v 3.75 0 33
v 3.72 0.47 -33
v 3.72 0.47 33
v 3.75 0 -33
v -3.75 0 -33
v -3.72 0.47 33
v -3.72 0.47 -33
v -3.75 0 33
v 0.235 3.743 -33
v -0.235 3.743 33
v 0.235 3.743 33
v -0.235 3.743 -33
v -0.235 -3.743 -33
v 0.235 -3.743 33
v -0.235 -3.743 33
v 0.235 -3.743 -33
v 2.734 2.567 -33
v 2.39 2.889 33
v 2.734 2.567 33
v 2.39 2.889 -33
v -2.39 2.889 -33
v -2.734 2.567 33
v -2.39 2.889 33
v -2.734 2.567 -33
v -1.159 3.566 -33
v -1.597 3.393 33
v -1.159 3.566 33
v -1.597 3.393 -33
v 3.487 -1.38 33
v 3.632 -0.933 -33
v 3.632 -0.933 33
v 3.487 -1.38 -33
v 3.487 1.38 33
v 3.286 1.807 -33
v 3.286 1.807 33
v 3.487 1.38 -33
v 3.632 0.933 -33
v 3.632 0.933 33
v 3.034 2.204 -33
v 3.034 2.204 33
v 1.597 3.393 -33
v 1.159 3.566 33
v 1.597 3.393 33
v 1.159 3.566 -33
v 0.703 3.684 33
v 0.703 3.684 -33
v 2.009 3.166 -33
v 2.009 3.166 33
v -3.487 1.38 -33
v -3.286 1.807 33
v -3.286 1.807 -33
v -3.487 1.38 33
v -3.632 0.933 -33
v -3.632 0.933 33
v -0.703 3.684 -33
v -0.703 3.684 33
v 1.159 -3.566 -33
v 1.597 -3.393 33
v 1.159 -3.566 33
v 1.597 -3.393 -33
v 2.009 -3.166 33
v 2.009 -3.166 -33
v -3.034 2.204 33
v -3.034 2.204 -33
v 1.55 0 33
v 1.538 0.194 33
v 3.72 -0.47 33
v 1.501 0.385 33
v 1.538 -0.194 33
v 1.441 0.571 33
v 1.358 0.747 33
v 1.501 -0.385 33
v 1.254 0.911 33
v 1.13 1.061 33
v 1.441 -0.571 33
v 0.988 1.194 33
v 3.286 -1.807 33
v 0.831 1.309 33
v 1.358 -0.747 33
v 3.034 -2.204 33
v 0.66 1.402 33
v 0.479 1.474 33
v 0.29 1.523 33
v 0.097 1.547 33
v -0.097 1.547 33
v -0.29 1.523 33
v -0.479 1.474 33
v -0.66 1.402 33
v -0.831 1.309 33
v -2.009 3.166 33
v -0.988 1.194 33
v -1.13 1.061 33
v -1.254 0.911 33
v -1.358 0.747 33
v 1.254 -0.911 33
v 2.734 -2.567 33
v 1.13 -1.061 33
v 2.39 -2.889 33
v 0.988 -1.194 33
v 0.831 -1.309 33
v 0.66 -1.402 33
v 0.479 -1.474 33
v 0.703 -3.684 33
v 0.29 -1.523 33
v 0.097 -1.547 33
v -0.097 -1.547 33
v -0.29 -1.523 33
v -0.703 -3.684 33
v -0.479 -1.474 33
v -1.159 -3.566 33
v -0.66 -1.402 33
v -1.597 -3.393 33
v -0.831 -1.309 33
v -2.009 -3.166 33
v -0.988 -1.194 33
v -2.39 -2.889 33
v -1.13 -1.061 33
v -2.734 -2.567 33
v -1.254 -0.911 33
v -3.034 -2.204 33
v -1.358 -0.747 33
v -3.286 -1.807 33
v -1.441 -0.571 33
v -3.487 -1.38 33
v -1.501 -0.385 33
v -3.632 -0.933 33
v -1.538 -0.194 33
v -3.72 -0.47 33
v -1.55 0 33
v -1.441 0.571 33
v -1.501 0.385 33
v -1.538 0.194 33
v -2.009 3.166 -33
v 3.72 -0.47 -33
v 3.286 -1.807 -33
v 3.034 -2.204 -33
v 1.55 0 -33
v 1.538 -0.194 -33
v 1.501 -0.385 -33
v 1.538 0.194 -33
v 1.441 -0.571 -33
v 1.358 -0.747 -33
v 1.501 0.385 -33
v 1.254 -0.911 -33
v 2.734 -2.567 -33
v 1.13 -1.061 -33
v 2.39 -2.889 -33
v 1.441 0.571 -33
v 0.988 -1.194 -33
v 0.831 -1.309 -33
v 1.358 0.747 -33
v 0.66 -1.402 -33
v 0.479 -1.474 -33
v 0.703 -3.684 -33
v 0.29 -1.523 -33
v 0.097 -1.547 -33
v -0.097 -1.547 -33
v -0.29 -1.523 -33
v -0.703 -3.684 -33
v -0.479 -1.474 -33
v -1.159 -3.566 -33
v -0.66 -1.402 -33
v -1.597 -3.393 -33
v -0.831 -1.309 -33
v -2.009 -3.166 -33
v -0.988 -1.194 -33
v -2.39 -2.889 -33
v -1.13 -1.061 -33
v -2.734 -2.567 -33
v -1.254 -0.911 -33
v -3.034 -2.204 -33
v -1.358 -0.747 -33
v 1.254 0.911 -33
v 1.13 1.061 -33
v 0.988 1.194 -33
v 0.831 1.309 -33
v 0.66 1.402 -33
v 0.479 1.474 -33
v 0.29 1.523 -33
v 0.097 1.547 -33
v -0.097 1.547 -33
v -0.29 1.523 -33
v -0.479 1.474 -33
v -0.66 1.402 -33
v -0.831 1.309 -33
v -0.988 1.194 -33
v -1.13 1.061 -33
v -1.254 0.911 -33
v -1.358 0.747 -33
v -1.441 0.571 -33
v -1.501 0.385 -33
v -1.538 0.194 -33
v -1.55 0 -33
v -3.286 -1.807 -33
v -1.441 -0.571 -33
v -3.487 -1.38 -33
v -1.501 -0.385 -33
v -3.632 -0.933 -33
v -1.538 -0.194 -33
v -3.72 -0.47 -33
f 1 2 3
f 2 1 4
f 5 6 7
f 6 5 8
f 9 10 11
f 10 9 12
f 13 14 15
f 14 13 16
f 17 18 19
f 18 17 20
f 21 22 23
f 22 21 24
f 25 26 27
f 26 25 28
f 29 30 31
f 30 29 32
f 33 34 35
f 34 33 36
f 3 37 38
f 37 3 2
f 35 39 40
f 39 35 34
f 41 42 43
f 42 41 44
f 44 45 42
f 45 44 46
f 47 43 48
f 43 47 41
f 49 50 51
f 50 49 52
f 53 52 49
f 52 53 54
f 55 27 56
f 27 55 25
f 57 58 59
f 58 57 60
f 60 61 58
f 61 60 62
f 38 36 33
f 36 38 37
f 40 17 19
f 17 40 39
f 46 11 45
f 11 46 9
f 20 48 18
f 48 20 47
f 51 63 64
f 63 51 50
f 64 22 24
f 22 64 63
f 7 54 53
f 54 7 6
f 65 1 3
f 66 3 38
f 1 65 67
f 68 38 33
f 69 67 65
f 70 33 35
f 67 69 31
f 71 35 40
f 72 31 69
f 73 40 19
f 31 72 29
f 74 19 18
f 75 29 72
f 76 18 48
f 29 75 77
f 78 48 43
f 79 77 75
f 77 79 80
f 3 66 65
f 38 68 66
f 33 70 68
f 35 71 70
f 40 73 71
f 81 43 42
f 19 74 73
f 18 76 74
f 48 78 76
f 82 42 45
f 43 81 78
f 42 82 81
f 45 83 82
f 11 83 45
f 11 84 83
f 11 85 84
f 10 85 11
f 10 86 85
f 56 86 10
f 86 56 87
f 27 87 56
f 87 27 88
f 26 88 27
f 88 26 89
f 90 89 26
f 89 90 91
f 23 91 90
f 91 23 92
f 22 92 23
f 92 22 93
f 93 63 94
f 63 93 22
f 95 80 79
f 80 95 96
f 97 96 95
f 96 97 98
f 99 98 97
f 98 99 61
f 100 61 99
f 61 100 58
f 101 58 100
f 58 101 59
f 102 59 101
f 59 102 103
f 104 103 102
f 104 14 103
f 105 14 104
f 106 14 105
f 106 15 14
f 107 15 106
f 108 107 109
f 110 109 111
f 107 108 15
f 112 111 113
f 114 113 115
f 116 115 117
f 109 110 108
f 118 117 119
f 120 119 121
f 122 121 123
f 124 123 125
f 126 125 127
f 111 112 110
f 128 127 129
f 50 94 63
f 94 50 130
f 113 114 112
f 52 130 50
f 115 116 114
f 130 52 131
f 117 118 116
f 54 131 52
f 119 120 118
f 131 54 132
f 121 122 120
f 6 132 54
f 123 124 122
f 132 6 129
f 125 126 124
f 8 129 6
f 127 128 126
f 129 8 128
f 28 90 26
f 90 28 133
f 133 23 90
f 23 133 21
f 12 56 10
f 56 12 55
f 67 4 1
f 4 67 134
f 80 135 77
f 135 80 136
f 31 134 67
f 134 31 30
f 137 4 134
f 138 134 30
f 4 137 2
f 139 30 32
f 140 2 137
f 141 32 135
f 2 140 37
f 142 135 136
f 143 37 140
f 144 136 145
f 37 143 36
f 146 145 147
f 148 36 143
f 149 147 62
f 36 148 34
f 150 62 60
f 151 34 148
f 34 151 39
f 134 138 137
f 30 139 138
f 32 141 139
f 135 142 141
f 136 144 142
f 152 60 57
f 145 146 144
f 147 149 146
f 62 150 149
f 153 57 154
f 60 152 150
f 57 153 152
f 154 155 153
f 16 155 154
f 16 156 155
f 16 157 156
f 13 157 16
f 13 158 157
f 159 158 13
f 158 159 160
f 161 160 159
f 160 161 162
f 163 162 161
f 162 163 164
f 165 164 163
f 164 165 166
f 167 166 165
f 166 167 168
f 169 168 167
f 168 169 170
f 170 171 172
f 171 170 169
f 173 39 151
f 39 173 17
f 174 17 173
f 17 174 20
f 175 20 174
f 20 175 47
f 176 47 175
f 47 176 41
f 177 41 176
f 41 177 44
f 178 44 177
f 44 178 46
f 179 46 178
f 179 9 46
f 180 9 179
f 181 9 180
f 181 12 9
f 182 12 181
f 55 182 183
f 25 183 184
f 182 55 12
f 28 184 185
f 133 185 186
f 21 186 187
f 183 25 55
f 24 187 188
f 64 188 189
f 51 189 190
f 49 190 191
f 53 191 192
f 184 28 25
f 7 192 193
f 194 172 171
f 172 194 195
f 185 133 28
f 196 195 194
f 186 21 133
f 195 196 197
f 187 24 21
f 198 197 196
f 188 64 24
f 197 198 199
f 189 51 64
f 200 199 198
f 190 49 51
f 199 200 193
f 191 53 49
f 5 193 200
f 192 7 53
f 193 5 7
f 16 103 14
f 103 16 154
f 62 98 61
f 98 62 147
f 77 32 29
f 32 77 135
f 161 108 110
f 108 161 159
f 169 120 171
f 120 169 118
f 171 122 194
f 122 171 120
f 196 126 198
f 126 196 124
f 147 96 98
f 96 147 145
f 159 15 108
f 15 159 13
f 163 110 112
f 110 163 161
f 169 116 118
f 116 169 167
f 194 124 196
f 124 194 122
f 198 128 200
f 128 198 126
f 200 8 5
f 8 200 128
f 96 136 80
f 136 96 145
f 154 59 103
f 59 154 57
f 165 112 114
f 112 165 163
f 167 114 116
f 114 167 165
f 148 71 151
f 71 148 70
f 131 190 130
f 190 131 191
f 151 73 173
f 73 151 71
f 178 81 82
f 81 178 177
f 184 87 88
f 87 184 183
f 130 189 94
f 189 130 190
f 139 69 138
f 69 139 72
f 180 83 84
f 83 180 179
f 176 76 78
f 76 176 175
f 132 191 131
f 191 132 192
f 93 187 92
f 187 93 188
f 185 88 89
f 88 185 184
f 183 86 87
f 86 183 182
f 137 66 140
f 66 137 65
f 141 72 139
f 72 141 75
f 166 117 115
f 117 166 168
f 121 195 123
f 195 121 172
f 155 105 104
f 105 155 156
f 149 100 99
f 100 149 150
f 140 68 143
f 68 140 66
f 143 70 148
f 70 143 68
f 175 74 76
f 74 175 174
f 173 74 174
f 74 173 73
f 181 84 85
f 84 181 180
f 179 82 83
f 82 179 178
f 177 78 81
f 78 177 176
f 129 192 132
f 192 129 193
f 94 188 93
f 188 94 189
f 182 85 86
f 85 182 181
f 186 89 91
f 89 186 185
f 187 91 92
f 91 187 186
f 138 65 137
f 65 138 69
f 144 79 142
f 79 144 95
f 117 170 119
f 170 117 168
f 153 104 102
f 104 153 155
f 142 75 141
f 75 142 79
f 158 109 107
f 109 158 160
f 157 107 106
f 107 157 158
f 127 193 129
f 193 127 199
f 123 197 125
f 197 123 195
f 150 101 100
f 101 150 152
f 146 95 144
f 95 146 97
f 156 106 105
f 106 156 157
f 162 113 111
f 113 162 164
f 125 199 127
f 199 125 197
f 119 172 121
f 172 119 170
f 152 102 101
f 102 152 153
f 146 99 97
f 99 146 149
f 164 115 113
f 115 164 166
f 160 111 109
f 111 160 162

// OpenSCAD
$fn = 50;


difference() {
	union() {
		translate(v = [0, 0, -33.0000000000]) {
			cylinder(h = 66, r = 3.7500000000);
		}
	}
	union() {
		translate(v = [0, 0, -100.0000000000]) {
			cylinder(h = 200, r = 1.5500000000);
		}
	}
}
